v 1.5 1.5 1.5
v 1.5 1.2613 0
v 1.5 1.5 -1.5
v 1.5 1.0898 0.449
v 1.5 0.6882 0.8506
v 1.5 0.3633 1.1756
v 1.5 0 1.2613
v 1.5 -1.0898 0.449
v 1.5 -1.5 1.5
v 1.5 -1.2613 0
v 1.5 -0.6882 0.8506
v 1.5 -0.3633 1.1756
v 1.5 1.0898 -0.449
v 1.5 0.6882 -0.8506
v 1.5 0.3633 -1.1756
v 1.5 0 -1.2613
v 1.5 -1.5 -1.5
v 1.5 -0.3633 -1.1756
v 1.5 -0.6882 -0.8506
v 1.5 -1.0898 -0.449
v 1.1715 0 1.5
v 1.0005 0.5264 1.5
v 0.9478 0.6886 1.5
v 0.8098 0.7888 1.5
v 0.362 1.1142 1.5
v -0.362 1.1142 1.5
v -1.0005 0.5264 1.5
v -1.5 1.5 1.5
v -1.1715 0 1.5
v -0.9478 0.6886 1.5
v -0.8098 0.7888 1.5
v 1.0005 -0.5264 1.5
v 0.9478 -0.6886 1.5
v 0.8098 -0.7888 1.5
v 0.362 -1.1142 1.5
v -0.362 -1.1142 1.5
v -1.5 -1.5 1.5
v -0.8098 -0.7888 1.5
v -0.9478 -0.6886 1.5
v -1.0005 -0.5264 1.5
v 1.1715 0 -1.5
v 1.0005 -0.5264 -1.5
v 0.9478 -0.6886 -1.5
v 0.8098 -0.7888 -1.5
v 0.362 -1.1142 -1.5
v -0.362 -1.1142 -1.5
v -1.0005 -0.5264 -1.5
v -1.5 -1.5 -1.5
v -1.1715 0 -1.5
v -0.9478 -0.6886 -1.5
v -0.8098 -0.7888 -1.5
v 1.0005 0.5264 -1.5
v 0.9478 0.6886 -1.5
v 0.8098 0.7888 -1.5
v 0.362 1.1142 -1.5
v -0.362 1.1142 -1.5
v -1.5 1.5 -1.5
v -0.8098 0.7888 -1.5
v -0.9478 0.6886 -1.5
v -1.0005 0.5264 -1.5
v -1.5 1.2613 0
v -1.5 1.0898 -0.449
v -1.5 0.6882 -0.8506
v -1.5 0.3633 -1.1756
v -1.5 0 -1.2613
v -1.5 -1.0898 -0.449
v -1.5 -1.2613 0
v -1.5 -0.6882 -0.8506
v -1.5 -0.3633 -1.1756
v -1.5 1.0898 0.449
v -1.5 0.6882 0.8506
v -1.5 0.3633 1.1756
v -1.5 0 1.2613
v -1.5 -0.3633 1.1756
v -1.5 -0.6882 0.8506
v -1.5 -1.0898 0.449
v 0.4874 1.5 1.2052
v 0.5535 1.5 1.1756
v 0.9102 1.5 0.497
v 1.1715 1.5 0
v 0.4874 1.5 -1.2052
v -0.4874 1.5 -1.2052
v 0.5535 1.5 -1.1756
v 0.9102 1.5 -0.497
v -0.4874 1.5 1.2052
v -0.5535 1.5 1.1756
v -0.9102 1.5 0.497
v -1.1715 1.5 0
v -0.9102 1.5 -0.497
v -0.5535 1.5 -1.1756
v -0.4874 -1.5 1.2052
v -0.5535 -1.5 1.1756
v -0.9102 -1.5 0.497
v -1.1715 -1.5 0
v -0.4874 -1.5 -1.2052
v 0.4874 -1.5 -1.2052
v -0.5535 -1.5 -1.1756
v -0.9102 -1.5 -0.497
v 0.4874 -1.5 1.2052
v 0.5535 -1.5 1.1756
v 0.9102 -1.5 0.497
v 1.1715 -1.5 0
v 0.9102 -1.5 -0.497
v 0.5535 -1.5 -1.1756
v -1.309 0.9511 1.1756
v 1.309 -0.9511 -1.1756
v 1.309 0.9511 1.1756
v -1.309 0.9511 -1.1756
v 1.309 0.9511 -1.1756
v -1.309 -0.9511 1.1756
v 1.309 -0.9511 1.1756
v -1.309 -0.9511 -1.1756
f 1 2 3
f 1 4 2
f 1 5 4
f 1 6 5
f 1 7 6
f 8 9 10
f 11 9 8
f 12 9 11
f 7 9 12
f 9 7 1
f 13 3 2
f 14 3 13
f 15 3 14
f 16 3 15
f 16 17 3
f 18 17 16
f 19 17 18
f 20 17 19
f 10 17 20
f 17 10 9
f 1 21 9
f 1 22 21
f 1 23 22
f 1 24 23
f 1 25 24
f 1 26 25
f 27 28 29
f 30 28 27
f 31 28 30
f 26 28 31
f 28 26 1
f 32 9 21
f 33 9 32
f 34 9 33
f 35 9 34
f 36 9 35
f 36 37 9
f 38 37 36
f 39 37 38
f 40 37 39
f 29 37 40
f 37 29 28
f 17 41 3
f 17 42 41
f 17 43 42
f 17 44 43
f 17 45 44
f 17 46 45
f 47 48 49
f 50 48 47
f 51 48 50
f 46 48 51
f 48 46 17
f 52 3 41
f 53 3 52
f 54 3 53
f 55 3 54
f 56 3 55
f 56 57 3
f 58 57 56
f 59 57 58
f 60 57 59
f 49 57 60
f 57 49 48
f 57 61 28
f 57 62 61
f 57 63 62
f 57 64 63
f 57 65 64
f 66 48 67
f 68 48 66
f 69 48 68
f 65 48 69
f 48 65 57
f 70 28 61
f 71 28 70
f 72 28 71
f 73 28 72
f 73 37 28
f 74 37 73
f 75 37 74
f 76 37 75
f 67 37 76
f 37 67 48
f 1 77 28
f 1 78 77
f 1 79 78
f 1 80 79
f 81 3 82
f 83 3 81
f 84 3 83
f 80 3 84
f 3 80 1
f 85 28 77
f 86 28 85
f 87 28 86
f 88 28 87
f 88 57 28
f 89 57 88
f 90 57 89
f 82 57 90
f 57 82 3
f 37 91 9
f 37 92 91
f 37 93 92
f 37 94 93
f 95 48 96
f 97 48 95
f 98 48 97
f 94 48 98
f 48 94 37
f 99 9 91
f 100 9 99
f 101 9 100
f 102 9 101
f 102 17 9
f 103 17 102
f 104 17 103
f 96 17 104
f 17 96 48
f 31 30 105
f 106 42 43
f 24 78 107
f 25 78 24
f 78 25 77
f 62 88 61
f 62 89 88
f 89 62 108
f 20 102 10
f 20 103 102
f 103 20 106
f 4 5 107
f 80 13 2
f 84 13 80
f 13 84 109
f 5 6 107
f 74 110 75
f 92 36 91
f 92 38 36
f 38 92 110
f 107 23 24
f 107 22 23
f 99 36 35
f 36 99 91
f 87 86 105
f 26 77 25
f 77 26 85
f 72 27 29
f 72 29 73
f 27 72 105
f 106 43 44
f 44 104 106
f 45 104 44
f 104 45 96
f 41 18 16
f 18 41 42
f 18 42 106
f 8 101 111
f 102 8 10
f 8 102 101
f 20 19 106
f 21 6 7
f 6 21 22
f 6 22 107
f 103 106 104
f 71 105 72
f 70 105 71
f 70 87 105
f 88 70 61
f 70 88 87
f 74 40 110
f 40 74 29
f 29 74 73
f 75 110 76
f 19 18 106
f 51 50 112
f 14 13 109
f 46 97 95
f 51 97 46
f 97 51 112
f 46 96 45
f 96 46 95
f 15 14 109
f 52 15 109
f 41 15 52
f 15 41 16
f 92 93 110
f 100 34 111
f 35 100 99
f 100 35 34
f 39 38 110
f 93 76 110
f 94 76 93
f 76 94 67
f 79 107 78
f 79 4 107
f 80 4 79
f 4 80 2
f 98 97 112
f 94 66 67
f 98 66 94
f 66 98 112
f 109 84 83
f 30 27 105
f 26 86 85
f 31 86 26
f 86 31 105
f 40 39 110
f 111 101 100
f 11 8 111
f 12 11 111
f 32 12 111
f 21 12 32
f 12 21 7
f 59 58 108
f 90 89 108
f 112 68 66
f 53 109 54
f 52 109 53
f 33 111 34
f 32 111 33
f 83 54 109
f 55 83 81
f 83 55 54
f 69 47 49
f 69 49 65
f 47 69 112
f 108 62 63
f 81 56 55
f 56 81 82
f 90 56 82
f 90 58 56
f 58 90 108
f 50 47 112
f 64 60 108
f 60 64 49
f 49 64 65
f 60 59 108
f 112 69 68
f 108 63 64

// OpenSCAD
difference() {
    cube(3, true);
    sphere(2, $fn=10);
}

// sphere(1.5, $fn=10);
